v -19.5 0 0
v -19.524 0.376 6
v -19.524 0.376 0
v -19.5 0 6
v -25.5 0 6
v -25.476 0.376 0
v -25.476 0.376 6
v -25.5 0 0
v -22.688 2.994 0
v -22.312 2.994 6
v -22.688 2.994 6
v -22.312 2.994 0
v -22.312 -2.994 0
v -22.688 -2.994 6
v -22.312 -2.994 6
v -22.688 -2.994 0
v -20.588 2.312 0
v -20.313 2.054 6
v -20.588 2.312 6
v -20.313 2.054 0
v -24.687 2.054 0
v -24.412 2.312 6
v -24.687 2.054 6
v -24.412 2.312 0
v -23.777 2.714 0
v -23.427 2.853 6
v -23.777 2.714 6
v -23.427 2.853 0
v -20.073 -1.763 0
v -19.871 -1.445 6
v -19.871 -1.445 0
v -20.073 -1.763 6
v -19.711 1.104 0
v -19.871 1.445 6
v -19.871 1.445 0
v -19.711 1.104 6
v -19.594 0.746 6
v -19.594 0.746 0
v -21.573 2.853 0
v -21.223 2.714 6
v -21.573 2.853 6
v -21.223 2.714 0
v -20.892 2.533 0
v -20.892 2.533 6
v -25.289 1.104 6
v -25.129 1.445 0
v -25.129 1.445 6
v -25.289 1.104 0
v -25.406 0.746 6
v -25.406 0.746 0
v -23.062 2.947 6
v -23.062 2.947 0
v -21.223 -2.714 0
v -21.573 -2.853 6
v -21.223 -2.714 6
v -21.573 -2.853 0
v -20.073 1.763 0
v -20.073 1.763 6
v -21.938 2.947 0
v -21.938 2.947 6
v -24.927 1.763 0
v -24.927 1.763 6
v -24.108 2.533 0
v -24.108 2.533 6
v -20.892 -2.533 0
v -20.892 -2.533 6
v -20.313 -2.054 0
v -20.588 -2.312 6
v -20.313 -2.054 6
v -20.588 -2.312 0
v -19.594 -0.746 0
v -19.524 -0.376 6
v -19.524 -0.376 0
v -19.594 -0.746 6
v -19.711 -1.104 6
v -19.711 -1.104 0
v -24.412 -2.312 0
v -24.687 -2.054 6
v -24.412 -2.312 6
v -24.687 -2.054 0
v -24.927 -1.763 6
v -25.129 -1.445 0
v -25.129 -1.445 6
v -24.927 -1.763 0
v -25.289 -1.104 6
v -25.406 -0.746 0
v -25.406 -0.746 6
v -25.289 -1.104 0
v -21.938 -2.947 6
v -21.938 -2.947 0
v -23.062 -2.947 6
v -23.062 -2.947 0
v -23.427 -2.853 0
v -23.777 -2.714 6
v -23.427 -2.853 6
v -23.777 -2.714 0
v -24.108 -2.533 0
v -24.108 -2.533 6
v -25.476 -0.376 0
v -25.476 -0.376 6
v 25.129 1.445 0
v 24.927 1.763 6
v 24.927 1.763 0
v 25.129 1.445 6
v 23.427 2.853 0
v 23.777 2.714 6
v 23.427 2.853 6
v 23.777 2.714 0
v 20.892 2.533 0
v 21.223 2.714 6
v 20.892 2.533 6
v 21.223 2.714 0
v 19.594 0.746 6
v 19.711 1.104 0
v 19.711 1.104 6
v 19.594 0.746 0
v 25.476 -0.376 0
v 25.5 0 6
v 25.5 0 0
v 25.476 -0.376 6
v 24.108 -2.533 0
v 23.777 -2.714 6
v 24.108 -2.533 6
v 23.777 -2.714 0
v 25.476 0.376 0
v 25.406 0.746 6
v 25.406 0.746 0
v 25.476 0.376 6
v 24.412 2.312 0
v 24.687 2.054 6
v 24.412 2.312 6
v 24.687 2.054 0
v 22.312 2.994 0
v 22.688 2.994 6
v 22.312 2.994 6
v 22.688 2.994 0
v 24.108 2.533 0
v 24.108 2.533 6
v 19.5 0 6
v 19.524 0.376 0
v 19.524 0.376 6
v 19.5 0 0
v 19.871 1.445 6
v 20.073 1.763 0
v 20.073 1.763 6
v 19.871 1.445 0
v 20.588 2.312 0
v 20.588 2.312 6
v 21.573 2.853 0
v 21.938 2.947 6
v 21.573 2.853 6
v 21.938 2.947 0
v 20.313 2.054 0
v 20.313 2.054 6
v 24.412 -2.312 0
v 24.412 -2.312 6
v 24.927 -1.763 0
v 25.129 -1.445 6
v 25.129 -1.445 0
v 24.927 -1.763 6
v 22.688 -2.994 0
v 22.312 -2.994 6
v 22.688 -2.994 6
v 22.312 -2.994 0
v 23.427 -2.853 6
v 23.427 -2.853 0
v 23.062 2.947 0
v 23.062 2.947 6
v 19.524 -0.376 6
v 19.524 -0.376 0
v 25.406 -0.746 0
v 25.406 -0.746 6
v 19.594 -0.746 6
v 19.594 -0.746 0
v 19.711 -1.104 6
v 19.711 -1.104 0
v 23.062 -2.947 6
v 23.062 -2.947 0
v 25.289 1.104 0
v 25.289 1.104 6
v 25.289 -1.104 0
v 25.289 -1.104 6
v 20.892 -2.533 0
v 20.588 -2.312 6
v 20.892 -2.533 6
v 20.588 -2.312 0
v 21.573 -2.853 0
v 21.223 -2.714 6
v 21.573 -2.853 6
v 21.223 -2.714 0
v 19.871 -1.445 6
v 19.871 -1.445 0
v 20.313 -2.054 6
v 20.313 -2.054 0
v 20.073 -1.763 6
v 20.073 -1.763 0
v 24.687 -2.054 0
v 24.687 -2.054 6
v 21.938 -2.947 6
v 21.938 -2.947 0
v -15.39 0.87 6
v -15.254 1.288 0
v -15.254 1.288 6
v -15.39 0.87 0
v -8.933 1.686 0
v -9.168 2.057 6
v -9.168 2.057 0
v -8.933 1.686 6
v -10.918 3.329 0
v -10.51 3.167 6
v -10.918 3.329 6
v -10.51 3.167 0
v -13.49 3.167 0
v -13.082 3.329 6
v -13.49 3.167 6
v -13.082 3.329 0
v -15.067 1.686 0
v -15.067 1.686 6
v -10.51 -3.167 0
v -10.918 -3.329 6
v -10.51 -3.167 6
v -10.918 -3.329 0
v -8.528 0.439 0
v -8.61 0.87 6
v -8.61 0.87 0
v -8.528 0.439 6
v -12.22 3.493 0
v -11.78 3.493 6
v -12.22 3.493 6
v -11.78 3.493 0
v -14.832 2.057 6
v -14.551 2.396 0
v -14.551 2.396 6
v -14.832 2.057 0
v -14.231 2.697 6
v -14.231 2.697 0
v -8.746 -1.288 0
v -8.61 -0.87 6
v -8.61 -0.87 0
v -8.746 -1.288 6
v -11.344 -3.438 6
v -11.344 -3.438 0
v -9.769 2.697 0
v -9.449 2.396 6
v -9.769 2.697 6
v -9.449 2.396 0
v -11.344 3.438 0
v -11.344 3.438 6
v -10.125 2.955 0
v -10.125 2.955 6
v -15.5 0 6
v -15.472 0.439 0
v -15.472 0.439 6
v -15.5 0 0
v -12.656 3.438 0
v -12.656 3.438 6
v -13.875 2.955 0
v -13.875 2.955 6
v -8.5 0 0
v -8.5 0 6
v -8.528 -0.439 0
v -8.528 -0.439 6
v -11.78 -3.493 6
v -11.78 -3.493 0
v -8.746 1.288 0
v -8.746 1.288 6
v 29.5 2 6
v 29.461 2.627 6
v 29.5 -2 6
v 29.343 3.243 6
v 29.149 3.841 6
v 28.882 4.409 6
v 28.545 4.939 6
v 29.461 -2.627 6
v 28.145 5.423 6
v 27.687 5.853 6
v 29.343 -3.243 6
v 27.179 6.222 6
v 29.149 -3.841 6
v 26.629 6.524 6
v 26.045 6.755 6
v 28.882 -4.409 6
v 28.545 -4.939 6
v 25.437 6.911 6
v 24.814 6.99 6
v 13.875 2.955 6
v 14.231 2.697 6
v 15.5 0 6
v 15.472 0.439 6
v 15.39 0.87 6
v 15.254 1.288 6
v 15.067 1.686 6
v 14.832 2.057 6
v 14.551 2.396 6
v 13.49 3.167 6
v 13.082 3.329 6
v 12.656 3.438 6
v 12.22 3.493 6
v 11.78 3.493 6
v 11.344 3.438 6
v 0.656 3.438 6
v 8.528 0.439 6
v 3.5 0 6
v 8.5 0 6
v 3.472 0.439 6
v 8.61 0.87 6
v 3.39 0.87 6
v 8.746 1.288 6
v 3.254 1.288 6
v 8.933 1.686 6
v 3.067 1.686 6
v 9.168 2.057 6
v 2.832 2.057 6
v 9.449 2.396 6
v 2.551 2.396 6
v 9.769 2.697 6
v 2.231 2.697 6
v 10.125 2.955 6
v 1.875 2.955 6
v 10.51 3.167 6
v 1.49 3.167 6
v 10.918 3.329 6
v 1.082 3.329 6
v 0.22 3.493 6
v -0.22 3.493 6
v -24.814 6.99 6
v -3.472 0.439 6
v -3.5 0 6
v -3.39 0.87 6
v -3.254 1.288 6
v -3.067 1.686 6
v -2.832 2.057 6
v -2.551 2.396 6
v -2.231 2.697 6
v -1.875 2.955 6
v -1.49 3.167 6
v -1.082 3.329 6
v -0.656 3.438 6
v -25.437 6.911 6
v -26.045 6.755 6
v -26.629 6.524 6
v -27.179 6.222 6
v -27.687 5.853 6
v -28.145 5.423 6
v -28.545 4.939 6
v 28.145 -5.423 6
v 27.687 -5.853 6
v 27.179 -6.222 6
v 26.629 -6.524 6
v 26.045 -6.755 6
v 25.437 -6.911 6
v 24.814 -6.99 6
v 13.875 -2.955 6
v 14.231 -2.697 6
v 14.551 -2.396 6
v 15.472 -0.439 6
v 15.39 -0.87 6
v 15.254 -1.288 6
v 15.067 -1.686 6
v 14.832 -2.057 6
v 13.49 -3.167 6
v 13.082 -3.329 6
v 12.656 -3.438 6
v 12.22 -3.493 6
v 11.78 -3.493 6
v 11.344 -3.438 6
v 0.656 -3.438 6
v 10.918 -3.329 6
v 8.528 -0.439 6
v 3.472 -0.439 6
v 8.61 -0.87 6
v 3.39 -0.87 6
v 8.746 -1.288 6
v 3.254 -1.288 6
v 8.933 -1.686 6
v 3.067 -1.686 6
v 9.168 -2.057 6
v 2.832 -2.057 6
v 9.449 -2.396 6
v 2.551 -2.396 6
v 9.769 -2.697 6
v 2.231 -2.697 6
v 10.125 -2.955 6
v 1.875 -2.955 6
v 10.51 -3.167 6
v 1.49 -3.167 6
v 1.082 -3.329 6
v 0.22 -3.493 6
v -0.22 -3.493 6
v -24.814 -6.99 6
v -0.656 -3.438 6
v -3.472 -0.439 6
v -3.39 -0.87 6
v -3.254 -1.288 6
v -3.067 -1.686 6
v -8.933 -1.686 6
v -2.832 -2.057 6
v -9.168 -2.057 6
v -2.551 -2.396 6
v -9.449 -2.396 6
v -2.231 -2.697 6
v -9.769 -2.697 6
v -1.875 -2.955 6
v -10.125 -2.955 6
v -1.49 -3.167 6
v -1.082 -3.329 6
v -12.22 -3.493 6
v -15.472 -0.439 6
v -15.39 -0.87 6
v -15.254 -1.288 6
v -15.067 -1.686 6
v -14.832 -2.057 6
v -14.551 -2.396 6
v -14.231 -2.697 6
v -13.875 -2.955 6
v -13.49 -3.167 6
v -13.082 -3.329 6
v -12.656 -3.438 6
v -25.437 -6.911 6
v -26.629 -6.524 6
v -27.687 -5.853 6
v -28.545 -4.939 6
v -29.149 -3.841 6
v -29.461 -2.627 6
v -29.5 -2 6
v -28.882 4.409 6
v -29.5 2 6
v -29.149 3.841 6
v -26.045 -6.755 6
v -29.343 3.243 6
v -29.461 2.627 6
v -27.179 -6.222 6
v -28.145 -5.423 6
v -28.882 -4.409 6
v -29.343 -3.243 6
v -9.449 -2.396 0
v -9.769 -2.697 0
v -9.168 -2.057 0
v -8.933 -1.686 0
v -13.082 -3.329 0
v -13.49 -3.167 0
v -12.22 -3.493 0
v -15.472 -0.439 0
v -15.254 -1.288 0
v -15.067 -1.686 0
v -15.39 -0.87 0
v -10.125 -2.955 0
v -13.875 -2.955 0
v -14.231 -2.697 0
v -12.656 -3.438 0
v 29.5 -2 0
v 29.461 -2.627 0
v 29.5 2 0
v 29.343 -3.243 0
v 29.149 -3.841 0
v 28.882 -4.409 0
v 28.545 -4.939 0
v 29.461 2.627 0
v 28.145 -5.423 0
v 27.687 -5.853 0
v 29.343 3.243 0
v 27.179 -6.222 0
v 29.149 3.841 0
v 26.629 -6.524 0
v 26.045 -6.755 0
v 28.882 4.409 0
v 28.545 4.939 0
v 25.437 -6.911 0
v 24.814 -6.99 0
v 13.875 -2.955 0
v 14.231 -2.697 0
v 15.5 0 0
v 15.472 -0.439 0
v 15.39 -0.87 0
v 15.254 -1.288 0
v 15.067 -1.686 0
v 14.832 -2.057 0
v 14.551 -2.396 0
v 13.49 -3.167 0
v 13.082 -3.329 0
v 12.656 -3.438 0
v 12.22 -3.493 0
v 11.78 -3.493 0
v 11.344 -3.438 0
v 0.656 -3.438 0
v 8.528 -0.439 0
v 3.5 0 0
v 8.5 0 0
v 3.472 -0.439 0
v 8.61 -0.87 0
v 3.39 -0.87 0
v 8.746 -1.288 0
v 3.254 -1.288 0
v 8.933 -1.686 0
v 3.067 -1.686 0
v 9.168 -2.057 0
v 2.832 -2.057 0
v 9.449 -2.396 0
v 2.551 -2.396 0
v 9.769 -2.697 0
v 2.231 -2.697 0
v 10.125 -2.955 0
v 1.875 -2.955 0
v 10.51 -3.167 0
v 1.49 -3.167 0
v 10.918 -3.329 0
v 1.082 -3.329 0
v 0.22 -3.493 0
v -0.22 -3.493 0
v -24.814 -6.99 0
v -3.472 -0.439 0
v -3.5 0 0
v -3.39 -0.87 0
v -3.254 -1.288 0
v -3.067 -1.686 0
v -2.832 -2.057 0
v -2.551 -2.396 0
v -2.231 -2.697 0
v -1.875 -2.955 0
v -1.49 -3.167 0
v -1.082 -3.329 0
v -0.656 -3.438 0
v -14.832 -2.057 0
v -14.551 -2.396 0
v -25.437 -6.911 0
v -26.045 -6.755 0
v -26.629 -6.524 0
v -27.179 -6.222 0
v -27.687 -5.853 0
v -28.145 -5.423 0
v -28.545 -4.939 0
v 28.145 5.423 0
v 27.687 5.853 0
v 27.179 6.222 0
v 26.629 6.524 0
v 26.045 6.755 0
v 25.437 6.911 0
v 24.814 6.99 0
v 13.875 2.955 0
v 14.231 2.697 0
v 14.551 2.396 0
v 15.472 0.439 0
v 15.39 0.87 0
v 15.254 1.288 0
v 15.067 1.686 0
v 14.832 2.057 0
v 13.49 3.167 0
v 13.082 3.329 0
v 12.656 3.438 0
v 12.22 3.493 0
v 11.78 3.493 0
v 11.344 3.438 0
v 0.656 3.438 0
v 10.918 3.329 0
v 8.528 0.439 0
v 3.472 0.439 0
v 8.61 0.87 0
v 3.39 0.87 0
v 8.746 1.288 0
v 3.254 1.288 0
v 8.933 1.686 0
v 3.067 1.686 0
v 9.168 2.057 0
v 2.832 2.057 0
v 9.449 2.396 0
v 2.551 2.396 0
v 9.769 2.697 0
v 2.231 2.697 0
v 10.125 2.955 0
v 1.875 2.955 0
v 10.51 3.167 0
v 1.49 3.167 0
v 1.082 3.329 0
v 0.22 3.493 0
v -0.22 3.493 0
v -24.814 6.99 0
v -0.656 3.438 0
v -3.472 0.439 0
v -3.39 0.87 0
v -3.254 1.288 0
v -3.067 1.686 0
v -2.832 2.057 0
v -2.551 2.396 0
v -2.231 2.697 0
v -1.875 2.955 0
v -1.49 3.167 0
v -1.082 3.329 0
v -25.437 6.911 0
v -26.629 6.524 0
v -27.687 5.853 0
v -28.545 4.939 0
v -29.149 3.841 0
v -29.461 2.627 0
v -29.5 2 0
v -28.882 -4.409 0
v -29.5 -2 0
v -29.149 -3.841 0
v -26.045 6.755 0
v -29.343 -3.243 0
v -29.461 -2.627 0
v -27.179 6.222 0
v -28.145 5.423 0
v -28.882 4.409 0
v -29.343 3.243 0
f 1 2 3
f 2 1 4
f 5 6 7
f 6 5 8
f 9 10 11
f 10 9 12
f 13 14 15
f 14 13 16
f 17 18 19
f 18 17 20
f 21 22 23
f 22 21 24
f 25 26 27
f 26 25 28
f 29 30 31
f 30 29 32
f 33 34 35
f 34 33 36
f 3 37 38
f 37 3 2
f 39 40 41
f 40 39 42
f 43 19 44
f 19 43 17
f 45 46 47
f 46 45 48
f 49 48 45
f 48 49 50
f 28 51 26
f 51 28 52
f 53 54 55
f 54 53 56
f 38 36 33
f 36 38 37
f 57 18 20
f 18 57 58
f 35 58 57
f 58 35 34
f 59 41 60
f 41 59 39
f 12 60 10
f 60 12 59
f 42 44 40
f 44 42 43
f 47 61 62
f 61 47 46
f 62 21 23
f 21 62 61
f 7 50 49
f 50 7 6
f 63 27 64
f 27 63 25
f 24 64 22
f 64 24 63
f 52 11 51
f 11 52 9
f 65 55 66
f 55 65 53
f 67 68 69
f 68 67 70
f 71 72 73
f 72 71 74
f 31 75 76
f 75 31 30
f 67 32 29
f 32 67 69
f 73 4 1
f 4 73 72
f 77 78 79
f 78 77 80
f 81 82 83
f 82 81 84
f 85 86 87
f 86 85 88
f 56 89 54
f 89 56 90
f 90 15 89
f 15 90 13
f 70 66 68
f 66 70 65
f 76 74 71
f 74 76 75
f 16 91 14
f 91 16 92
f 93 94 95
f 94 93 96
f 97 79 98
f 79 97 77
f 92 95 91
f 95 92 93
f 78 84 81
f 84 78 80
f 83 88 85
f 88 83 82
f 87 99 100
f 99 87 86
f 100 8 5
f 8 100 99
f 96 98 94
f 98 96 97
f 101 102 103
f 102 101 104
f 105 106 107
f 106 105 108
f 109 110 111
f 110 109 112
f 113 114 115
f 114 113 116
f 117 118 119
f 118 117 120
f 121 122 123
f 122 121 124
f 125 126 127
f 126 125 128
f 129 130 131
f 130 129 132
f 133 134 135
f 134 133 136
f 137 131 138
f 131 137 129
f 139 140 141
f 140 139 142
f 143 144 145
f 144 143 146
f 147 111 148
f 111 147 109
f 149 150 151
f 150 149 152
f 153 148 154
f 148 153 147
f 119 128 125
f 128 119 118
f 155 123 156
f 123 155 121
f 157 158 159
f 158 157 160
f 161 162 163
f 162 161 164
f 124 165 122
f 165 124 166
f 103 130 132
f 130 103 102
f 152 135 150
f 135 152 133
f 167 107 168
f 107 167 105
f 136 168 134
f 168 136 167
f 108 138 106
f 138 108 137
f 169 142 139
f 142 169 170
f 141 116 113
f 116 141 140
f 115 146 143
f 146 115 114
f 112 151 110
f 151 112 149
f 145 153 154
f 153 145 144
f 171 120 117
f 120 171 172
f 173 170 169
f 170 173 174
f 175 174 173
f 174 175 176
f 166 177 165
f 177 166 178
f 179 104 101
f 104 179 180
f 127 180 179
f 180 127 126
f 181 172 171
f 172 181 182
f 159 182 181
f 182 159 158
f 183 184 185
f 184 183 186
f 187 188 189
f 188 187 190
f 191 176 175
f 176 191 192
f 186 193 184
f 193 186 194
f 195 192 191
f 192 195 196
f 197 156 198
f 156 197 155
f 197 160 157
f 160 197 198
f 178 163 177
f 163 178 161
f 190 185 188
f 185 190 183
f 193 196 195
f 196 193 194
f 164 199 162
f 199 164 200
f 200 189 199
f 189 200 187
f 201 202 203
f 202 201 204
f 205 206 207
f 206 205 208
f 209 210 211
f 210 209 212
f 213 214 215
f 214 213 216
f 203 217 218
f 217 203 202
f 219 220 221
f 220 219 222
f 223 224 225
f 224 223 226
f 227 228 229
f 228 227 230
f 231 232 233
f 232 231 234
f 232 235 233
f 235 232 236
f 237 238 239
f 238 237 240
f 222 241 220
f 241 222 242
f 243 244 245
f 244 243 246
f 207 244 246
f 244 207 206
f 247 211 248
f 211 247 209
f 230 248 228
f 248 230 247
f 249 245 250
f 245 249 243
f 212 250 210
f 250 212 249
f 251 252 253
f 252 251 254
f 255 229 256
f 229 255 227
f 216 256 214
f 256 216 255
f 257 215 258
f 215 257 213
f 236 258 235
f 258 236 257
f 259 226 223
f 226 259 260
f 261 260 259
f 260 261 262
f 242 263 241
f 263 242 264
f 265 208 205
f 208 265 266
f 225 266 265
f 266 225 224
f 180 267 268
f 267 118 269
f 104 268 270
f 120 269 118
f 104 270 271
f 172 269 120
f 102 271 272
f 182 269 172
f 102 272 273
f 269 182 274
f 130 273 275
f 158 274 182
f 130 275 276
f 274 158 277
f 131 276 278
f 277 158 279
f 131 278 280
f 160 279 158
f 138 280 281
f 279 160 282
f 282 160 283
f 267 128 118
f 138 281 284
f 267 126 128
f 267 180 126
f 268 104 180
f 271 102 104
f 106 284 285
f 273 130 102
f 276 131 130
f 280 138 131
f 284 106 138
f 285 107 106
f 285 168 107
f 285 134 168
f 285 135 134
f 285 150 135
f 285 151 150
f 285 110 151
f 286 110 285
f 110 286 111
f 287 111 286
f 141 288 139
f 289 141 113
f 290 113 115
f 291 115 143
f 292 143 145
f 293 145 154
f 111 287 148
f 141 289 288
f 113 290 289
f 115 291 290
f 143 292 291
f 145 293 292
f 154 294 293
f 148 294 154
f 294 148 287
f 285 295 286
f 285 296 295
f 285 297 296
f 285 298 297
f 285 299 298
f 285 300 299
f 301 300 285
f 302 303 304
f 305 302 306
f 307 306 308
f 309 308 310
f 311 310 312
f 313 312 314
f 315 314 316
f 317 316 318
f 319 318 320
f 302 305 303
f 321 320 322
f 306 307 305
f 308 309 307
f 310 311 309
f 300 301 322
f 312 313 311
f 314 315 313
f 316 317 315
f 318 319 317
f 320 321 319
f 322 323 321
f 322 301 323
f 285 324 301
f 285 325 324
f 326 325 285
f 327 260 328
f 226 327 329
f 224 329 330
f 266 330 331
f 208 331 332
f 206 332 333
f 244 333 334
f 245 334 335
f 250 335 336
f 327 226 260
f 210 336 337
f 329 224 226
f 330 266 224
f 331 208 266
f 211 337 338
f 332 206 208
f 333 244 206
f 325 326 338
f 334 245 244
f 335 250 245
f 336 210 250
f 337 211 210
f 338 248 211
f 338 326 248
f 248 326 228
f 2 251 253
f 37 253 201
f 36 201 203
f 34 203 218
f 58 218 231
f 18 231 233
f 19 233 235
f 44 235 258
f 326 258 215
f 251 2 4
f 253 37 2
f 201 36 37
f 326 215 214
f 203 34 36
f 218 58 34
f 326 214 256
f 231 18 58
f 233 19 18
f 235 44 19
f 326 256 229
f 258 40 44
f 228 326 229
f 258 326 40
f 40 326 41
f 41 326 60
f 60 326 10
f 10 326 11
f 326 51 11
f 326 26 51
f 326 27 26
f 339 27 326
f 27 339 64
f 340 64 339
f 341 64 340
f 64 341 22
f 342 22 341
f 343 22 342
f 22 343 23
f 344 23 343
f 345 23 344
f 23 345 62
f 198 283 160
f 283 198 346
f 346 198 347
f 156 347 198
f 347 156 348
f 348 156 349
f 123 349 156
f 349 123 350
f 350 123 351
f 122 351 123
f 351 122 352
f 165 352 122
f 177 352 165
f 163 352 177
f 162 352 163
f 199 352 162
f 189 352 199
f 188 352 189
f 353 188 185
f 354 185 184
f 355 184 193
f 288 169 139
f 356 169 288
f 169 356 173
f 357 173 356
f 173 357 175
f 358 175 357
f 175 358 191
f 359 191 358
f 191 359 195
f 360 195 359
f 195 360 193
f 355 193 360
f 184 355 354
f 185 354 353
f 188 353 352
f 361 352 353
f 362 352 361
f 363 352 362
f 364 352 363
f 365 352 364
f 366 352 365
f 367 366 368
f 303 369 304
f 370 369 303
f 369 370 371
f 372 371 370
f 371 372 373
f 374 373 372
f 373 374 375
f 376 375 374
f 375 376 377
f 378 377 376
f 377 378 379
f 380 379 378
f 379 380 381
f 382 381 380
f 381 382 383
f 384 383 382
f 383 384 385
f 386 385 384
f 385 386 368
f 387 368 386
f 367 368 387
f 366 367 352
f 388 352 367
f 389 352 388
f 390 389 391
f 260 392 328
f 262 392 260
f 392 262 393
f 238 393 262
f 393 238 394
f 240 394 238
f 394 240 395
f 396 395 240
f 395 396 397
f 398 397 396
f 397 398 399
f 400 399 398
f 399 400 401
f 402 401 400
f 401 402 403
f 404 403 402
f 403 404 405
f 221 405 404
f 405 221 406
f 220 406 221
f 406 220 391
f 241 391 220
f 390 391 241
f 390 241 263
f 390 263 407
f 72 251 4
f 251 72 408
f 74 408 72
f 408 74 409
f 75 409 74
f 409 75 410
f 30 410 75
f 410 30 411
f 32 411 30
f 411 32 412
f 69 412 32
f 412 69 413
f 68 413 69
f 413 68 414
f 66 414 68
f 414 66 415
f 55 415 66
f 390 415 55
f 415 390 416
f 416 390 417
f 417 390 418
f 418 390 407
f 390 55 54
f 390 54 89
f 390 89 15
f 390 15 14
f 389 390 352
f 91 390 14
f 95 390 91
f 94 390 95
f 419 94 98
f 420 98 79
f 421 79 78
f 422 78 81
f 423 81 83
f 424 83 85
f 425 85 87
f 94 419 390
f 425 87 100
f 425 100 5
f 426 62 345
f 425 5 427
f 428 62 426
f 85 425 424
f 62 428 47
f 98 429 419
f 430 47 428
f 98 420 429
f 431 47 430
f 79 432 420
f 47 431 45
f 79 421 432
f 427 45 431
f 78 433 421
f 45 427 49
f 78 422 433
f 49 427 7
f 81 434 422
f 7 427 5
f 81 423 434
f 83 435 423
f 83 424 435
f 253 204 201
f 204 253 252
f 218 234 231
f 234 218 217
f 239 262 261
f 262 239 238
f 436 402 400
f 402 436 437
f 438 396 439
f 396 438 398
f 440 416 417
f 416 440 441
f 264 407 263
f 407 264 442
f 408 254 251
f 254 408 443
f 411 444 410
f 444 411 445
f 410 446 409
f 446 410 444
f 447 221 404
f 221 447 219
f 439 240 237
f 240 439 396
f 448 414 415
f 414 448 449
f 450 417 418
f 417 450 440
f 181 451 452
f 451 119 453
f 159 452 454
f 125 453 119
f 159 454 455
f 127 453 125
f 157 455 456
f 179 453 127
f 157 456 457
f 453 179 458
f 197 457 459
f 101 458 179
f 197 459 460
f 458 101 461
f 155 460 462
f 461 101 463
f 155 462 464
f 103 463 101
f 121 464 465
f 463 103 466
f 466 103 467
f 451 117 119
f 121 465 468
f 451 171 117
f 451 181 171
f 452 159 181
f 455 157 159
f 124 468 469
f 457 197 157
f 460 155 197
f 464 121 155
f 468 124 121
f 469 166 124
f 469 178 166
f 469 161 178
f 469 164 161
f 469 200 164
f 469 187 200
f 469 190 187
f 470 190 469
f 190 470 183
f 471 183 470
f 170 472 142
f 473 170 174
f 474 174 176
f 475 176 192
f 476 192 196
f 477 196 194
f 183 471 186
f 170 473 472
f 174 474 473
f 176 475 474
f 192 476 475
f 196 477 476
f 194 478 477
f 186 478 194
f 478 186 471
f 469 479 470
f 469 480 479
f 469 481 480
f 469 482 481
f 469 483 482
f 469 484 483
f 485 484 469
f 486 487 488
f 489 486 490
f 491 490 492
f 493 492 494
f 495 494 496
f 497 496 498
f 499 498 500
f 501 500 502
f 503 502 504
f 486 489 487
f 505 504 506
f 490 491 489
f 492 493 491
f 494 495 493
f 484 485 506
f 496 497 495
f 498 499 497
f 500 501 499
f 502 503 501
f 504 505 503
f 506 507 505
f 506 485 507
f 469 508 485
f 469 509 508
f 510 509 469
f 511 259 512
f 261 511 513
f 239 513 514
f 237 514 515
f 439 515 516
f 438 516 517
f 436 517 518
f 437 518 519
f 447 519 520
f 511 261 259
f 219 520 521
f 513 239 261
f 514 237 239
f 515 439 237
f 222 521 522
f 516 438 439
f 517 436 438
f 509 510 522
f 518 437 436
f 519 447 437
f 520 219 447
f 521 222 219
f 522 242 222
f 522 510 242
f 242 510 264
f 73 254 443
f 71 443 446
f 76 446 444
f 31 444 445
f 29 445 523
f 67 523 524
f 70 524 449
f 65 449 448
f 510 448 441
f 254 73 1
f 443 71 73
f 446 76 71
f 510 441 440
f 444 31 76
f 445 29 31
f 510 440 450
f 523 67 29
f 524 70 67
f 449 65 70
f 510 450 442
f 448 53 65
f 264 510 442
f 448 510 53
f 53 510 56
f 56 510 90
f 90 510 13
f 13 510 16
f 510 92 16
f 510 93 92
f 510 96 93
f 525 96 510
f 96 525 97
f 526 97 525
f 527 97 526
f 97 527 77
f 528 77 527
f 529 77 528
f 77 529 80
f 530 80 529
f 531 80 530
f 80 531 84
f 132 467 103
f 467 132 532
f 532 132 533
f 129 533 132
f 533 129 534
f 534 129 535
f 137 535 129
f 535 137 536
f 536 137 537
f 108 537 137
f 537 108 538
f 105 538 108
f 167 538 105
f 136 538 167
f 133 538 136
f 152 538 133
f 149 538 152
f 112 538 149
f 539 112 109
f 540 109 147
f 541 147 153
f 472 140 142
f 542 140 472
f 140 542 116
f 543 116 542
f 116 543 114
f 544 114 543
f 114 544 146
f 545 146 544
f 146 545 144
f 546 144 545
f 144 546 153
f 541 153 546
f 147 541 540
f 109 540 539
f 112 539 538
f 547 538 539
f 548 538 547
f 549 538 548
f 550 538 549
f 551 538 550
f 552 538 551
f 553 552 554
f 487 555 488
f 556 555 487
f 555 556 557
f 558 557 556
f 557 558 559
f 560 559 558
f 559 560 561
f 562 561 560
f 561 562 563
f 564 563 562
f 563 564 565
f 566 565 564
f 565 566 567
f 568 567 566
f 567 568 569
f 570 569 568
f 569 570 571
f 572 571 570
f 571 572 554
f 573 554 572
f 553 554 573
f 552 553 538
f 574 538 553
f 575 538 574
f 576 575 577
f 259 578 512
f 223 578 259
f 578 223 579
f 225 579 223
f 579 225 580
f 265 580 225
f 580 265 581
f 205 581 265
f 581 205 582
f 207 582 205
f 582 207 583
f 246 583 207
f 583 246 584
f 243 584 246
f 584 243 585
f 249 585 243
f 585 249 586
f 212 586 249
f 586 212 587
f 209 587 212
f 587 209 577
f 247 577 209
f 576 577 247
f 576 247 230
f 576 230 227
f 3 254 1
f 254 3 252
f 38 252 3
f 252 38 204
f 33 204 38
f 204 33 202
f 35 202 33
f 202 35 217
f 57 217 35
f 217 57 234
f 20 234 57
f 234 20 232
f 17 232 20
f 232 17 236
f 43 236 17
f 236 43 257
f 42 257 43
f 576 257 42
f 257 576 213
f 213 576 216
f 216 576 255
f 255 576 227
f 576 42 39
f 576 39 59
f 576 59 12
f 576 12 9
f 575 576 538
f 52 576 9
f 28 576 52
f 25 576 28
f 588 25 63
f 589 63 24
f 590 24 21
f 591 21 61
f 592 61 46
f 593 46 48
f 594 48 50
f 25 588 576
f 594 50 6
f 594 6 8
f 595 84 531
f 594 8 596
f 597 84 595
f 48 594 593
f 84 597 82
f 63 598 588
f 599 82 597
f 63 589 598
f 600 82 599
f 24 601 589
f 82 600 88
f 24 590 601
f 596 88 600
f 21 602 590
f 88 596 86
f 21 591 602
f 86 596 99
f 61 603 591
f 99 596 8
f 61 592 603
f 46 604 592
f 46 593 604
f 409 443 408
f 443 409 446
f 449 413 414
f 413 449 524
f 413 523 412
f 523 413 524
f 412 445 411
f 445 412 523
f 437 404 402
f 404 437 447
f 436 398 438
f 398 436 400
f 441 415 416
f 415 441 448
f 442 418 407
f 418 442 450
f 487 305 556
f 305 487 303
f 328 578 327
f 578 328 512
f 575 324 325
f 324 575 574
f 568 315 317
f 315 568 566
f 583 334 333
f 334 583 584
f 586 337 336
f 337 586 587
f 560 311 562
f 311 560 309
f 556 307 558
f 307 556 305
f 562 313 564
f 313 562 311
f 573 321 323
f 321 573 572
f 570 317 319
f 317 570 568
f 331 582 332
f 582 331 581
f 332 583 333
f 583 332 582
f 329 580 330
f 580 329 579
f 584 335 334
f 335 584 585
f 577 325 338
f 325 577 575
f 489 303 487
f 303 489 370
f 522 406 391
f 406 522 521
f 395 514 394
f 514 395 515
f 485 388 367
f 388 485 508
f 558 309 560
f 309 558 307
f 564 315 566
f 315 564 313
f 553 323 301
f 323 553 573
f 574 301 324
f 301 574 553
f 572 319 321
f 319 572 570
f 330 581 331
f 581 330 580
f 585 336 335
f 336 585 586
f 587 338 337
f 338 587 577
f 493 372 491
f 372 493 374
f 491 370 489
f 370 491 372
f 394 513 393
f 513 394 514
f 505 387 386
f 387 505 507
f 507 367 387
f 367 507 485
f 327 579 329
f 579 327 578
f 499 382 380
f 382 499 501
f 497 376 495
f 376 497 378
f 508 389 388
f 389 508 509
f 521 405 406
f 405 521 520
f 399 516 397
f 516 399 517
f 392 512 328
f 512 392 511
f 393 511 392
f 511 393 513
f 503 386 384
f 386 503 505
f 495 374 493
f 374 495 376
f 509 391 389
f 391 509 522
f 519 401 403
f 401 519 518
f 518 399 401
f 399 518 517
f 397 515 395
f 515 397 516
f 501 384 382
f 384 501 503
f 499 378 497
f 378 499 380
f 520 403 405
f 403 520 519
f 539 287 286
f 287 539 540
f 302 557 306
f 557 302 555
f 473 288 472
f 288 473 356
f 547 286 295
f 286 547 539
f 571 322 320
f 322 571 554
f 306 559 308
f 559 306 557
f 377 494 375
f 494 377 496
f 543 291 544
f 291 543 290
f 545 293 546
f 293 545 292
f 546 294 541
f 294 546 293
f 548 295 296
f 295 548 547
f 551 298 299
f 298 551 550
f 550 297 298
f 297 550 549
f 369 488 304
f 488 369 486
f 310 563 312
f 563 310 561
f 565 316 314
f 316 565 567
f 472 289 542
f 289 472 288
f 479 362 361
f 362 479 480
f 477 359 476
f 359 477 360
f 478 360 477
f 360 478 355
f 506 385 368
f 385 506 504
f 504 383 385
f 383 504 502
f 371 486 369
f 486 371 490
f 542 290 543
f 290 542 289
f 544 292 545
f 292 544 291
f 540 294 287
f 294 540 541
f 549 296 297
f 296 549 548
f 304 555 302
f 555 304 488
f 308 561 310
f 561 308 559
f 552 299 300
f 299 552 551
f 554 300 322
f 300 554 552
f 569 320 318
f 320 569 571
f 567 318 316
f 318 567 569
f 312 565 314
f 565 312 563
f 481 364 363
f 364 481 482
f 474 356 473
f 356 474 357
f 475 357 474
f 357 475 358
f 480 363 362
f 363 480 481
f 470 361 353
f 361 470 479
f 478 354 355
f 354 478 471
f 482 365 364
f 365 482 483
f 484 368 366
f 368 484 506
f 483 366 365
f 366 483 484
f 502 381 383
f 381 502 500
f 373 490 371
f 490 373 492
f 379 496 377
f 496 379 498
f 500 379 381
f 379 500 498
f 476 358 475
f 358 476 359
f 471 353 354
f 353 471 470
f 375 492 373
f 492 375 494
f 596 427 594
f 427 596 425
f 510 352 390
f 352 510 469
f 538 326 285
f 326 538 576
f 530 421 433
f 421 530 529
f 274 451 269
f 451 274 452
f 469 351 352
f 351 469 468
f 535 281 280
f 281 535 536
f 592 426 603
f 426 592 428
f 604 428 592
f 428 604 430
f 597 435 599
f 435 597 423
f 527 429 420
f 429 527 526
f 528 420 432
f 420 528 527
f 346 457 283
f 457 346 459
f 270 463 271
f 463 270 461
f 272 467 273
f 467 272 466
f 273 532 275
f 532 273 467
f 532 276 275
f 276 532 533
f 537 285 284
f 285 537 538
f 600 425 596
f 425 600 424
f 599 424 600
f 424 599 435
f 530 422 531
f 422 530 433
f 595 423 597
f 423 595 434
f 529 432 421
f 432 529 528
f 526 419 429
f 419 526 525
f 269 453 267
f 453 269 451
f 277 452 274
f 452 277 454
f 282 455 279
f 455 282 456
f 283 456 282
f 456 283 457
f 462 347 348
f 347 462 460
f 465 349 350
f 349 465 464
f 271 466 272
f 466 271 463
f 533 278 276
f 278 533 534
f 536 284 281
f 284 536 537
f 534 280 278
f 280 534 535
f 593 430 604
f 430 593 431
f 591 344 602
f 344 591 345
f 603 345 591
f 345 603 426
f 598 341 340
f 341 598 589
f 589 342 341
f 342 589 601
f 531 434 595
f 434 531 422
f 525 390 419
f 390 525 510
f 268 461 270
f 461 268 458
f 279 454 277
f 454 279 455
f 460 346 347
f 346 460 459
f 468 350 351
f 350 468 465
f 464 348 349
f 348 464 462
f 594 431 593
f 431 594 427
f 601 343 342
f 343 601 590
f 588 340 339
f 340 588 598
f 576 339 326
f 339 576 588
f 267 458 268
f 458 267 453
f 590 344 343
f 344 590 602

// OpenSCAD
$fn = 50;


difference() {
	union() {
		hull() {
			translate(v = [-24.5000000000, 2.0000000000, 0]) {
				cylinder(h = 6, r = 5);
			}
			translate(v = [24.5000000000, 2.0000000000, 0]) {
				cylinder(h = 6, r = 5);
			}
			translate(v = [-24.5000000000, -2.0000000000, 0]) {
				cylinder(h = 6, r = 5);
			}
			translate(v = [24.5000000000, -2.0000000000, 0]) {
				cylinder(h = 6, r = 5);
			}
		}
	}
	union() {
		#translate(v = [-22.5000000000, 0.0000000000, 0]) {
			cylinder(h = 6, r = 3.0000000000);
		}
		#translate(v = [22.5000000000, 0.0000000000, 0]) {
			cylinder(h = 6, r = 3.0000000000);
		}
		#translate(v = [-22.5000000000, 0.0000000000, -100.0000000000]) {
			cylinder(h = 200, r = 3.0000000000);
		}
		#translate(v = [-22.5000000000, 0.0000000000, -100.0000000000]) {
			cylinder(h = 200, r = 3.0000000000);
		}
		#translate(v = [22.5000000000, 0.0000000000, -100.0000000000]) {
			cylinder(h = 200, r = 3.0000000000);
		}
		#translate(v = [22.5000000000, 0.0000000000, -100.0000000000]) {
			cylinder(h = 200, r = 3.0000000000);
		}
		#translate(v = [-22.5000000000, 0.0000000000, 0]) {
			cylinder(h = 6, r = 1.5000000000);
		}
		#translate(v = [22.5000000000, 0.0000000000, 0]) {
			cylinder(h = 6, r = 1.5000000000);
		}
		#translate(v = [-22.5000000000, 0.0000000000, 0]) {
			cylinder(h = 6, r = 1.5000000000);
		}
		#translate(v = [22.5000000000, 0.0000000000, 0]) {
			cylinder(h = 6, r = 1.5000000000);
		}
		#translate(v = [-22.5000000000, 0.0000000000, 0]) {
			cylinder(h = 6, r = 1.5000000000);
		}
		#translate(v = [22.5000000000, 0.0000000000, 0]) {
			cylinder(h = 6, r = 1.5000000000);
		}
		#translate(v = [-12.0000000000, 0, 0]) {
			cylinder(h = 6, r = 3.5000000000);
		}
		#cylinder(h = 6, r = 3.5000000000);
		#translate(v = [12.0000000000, 0, 0]) {
			cylinder(h = 6, r = 3.5000000000);
		}
	}
}
